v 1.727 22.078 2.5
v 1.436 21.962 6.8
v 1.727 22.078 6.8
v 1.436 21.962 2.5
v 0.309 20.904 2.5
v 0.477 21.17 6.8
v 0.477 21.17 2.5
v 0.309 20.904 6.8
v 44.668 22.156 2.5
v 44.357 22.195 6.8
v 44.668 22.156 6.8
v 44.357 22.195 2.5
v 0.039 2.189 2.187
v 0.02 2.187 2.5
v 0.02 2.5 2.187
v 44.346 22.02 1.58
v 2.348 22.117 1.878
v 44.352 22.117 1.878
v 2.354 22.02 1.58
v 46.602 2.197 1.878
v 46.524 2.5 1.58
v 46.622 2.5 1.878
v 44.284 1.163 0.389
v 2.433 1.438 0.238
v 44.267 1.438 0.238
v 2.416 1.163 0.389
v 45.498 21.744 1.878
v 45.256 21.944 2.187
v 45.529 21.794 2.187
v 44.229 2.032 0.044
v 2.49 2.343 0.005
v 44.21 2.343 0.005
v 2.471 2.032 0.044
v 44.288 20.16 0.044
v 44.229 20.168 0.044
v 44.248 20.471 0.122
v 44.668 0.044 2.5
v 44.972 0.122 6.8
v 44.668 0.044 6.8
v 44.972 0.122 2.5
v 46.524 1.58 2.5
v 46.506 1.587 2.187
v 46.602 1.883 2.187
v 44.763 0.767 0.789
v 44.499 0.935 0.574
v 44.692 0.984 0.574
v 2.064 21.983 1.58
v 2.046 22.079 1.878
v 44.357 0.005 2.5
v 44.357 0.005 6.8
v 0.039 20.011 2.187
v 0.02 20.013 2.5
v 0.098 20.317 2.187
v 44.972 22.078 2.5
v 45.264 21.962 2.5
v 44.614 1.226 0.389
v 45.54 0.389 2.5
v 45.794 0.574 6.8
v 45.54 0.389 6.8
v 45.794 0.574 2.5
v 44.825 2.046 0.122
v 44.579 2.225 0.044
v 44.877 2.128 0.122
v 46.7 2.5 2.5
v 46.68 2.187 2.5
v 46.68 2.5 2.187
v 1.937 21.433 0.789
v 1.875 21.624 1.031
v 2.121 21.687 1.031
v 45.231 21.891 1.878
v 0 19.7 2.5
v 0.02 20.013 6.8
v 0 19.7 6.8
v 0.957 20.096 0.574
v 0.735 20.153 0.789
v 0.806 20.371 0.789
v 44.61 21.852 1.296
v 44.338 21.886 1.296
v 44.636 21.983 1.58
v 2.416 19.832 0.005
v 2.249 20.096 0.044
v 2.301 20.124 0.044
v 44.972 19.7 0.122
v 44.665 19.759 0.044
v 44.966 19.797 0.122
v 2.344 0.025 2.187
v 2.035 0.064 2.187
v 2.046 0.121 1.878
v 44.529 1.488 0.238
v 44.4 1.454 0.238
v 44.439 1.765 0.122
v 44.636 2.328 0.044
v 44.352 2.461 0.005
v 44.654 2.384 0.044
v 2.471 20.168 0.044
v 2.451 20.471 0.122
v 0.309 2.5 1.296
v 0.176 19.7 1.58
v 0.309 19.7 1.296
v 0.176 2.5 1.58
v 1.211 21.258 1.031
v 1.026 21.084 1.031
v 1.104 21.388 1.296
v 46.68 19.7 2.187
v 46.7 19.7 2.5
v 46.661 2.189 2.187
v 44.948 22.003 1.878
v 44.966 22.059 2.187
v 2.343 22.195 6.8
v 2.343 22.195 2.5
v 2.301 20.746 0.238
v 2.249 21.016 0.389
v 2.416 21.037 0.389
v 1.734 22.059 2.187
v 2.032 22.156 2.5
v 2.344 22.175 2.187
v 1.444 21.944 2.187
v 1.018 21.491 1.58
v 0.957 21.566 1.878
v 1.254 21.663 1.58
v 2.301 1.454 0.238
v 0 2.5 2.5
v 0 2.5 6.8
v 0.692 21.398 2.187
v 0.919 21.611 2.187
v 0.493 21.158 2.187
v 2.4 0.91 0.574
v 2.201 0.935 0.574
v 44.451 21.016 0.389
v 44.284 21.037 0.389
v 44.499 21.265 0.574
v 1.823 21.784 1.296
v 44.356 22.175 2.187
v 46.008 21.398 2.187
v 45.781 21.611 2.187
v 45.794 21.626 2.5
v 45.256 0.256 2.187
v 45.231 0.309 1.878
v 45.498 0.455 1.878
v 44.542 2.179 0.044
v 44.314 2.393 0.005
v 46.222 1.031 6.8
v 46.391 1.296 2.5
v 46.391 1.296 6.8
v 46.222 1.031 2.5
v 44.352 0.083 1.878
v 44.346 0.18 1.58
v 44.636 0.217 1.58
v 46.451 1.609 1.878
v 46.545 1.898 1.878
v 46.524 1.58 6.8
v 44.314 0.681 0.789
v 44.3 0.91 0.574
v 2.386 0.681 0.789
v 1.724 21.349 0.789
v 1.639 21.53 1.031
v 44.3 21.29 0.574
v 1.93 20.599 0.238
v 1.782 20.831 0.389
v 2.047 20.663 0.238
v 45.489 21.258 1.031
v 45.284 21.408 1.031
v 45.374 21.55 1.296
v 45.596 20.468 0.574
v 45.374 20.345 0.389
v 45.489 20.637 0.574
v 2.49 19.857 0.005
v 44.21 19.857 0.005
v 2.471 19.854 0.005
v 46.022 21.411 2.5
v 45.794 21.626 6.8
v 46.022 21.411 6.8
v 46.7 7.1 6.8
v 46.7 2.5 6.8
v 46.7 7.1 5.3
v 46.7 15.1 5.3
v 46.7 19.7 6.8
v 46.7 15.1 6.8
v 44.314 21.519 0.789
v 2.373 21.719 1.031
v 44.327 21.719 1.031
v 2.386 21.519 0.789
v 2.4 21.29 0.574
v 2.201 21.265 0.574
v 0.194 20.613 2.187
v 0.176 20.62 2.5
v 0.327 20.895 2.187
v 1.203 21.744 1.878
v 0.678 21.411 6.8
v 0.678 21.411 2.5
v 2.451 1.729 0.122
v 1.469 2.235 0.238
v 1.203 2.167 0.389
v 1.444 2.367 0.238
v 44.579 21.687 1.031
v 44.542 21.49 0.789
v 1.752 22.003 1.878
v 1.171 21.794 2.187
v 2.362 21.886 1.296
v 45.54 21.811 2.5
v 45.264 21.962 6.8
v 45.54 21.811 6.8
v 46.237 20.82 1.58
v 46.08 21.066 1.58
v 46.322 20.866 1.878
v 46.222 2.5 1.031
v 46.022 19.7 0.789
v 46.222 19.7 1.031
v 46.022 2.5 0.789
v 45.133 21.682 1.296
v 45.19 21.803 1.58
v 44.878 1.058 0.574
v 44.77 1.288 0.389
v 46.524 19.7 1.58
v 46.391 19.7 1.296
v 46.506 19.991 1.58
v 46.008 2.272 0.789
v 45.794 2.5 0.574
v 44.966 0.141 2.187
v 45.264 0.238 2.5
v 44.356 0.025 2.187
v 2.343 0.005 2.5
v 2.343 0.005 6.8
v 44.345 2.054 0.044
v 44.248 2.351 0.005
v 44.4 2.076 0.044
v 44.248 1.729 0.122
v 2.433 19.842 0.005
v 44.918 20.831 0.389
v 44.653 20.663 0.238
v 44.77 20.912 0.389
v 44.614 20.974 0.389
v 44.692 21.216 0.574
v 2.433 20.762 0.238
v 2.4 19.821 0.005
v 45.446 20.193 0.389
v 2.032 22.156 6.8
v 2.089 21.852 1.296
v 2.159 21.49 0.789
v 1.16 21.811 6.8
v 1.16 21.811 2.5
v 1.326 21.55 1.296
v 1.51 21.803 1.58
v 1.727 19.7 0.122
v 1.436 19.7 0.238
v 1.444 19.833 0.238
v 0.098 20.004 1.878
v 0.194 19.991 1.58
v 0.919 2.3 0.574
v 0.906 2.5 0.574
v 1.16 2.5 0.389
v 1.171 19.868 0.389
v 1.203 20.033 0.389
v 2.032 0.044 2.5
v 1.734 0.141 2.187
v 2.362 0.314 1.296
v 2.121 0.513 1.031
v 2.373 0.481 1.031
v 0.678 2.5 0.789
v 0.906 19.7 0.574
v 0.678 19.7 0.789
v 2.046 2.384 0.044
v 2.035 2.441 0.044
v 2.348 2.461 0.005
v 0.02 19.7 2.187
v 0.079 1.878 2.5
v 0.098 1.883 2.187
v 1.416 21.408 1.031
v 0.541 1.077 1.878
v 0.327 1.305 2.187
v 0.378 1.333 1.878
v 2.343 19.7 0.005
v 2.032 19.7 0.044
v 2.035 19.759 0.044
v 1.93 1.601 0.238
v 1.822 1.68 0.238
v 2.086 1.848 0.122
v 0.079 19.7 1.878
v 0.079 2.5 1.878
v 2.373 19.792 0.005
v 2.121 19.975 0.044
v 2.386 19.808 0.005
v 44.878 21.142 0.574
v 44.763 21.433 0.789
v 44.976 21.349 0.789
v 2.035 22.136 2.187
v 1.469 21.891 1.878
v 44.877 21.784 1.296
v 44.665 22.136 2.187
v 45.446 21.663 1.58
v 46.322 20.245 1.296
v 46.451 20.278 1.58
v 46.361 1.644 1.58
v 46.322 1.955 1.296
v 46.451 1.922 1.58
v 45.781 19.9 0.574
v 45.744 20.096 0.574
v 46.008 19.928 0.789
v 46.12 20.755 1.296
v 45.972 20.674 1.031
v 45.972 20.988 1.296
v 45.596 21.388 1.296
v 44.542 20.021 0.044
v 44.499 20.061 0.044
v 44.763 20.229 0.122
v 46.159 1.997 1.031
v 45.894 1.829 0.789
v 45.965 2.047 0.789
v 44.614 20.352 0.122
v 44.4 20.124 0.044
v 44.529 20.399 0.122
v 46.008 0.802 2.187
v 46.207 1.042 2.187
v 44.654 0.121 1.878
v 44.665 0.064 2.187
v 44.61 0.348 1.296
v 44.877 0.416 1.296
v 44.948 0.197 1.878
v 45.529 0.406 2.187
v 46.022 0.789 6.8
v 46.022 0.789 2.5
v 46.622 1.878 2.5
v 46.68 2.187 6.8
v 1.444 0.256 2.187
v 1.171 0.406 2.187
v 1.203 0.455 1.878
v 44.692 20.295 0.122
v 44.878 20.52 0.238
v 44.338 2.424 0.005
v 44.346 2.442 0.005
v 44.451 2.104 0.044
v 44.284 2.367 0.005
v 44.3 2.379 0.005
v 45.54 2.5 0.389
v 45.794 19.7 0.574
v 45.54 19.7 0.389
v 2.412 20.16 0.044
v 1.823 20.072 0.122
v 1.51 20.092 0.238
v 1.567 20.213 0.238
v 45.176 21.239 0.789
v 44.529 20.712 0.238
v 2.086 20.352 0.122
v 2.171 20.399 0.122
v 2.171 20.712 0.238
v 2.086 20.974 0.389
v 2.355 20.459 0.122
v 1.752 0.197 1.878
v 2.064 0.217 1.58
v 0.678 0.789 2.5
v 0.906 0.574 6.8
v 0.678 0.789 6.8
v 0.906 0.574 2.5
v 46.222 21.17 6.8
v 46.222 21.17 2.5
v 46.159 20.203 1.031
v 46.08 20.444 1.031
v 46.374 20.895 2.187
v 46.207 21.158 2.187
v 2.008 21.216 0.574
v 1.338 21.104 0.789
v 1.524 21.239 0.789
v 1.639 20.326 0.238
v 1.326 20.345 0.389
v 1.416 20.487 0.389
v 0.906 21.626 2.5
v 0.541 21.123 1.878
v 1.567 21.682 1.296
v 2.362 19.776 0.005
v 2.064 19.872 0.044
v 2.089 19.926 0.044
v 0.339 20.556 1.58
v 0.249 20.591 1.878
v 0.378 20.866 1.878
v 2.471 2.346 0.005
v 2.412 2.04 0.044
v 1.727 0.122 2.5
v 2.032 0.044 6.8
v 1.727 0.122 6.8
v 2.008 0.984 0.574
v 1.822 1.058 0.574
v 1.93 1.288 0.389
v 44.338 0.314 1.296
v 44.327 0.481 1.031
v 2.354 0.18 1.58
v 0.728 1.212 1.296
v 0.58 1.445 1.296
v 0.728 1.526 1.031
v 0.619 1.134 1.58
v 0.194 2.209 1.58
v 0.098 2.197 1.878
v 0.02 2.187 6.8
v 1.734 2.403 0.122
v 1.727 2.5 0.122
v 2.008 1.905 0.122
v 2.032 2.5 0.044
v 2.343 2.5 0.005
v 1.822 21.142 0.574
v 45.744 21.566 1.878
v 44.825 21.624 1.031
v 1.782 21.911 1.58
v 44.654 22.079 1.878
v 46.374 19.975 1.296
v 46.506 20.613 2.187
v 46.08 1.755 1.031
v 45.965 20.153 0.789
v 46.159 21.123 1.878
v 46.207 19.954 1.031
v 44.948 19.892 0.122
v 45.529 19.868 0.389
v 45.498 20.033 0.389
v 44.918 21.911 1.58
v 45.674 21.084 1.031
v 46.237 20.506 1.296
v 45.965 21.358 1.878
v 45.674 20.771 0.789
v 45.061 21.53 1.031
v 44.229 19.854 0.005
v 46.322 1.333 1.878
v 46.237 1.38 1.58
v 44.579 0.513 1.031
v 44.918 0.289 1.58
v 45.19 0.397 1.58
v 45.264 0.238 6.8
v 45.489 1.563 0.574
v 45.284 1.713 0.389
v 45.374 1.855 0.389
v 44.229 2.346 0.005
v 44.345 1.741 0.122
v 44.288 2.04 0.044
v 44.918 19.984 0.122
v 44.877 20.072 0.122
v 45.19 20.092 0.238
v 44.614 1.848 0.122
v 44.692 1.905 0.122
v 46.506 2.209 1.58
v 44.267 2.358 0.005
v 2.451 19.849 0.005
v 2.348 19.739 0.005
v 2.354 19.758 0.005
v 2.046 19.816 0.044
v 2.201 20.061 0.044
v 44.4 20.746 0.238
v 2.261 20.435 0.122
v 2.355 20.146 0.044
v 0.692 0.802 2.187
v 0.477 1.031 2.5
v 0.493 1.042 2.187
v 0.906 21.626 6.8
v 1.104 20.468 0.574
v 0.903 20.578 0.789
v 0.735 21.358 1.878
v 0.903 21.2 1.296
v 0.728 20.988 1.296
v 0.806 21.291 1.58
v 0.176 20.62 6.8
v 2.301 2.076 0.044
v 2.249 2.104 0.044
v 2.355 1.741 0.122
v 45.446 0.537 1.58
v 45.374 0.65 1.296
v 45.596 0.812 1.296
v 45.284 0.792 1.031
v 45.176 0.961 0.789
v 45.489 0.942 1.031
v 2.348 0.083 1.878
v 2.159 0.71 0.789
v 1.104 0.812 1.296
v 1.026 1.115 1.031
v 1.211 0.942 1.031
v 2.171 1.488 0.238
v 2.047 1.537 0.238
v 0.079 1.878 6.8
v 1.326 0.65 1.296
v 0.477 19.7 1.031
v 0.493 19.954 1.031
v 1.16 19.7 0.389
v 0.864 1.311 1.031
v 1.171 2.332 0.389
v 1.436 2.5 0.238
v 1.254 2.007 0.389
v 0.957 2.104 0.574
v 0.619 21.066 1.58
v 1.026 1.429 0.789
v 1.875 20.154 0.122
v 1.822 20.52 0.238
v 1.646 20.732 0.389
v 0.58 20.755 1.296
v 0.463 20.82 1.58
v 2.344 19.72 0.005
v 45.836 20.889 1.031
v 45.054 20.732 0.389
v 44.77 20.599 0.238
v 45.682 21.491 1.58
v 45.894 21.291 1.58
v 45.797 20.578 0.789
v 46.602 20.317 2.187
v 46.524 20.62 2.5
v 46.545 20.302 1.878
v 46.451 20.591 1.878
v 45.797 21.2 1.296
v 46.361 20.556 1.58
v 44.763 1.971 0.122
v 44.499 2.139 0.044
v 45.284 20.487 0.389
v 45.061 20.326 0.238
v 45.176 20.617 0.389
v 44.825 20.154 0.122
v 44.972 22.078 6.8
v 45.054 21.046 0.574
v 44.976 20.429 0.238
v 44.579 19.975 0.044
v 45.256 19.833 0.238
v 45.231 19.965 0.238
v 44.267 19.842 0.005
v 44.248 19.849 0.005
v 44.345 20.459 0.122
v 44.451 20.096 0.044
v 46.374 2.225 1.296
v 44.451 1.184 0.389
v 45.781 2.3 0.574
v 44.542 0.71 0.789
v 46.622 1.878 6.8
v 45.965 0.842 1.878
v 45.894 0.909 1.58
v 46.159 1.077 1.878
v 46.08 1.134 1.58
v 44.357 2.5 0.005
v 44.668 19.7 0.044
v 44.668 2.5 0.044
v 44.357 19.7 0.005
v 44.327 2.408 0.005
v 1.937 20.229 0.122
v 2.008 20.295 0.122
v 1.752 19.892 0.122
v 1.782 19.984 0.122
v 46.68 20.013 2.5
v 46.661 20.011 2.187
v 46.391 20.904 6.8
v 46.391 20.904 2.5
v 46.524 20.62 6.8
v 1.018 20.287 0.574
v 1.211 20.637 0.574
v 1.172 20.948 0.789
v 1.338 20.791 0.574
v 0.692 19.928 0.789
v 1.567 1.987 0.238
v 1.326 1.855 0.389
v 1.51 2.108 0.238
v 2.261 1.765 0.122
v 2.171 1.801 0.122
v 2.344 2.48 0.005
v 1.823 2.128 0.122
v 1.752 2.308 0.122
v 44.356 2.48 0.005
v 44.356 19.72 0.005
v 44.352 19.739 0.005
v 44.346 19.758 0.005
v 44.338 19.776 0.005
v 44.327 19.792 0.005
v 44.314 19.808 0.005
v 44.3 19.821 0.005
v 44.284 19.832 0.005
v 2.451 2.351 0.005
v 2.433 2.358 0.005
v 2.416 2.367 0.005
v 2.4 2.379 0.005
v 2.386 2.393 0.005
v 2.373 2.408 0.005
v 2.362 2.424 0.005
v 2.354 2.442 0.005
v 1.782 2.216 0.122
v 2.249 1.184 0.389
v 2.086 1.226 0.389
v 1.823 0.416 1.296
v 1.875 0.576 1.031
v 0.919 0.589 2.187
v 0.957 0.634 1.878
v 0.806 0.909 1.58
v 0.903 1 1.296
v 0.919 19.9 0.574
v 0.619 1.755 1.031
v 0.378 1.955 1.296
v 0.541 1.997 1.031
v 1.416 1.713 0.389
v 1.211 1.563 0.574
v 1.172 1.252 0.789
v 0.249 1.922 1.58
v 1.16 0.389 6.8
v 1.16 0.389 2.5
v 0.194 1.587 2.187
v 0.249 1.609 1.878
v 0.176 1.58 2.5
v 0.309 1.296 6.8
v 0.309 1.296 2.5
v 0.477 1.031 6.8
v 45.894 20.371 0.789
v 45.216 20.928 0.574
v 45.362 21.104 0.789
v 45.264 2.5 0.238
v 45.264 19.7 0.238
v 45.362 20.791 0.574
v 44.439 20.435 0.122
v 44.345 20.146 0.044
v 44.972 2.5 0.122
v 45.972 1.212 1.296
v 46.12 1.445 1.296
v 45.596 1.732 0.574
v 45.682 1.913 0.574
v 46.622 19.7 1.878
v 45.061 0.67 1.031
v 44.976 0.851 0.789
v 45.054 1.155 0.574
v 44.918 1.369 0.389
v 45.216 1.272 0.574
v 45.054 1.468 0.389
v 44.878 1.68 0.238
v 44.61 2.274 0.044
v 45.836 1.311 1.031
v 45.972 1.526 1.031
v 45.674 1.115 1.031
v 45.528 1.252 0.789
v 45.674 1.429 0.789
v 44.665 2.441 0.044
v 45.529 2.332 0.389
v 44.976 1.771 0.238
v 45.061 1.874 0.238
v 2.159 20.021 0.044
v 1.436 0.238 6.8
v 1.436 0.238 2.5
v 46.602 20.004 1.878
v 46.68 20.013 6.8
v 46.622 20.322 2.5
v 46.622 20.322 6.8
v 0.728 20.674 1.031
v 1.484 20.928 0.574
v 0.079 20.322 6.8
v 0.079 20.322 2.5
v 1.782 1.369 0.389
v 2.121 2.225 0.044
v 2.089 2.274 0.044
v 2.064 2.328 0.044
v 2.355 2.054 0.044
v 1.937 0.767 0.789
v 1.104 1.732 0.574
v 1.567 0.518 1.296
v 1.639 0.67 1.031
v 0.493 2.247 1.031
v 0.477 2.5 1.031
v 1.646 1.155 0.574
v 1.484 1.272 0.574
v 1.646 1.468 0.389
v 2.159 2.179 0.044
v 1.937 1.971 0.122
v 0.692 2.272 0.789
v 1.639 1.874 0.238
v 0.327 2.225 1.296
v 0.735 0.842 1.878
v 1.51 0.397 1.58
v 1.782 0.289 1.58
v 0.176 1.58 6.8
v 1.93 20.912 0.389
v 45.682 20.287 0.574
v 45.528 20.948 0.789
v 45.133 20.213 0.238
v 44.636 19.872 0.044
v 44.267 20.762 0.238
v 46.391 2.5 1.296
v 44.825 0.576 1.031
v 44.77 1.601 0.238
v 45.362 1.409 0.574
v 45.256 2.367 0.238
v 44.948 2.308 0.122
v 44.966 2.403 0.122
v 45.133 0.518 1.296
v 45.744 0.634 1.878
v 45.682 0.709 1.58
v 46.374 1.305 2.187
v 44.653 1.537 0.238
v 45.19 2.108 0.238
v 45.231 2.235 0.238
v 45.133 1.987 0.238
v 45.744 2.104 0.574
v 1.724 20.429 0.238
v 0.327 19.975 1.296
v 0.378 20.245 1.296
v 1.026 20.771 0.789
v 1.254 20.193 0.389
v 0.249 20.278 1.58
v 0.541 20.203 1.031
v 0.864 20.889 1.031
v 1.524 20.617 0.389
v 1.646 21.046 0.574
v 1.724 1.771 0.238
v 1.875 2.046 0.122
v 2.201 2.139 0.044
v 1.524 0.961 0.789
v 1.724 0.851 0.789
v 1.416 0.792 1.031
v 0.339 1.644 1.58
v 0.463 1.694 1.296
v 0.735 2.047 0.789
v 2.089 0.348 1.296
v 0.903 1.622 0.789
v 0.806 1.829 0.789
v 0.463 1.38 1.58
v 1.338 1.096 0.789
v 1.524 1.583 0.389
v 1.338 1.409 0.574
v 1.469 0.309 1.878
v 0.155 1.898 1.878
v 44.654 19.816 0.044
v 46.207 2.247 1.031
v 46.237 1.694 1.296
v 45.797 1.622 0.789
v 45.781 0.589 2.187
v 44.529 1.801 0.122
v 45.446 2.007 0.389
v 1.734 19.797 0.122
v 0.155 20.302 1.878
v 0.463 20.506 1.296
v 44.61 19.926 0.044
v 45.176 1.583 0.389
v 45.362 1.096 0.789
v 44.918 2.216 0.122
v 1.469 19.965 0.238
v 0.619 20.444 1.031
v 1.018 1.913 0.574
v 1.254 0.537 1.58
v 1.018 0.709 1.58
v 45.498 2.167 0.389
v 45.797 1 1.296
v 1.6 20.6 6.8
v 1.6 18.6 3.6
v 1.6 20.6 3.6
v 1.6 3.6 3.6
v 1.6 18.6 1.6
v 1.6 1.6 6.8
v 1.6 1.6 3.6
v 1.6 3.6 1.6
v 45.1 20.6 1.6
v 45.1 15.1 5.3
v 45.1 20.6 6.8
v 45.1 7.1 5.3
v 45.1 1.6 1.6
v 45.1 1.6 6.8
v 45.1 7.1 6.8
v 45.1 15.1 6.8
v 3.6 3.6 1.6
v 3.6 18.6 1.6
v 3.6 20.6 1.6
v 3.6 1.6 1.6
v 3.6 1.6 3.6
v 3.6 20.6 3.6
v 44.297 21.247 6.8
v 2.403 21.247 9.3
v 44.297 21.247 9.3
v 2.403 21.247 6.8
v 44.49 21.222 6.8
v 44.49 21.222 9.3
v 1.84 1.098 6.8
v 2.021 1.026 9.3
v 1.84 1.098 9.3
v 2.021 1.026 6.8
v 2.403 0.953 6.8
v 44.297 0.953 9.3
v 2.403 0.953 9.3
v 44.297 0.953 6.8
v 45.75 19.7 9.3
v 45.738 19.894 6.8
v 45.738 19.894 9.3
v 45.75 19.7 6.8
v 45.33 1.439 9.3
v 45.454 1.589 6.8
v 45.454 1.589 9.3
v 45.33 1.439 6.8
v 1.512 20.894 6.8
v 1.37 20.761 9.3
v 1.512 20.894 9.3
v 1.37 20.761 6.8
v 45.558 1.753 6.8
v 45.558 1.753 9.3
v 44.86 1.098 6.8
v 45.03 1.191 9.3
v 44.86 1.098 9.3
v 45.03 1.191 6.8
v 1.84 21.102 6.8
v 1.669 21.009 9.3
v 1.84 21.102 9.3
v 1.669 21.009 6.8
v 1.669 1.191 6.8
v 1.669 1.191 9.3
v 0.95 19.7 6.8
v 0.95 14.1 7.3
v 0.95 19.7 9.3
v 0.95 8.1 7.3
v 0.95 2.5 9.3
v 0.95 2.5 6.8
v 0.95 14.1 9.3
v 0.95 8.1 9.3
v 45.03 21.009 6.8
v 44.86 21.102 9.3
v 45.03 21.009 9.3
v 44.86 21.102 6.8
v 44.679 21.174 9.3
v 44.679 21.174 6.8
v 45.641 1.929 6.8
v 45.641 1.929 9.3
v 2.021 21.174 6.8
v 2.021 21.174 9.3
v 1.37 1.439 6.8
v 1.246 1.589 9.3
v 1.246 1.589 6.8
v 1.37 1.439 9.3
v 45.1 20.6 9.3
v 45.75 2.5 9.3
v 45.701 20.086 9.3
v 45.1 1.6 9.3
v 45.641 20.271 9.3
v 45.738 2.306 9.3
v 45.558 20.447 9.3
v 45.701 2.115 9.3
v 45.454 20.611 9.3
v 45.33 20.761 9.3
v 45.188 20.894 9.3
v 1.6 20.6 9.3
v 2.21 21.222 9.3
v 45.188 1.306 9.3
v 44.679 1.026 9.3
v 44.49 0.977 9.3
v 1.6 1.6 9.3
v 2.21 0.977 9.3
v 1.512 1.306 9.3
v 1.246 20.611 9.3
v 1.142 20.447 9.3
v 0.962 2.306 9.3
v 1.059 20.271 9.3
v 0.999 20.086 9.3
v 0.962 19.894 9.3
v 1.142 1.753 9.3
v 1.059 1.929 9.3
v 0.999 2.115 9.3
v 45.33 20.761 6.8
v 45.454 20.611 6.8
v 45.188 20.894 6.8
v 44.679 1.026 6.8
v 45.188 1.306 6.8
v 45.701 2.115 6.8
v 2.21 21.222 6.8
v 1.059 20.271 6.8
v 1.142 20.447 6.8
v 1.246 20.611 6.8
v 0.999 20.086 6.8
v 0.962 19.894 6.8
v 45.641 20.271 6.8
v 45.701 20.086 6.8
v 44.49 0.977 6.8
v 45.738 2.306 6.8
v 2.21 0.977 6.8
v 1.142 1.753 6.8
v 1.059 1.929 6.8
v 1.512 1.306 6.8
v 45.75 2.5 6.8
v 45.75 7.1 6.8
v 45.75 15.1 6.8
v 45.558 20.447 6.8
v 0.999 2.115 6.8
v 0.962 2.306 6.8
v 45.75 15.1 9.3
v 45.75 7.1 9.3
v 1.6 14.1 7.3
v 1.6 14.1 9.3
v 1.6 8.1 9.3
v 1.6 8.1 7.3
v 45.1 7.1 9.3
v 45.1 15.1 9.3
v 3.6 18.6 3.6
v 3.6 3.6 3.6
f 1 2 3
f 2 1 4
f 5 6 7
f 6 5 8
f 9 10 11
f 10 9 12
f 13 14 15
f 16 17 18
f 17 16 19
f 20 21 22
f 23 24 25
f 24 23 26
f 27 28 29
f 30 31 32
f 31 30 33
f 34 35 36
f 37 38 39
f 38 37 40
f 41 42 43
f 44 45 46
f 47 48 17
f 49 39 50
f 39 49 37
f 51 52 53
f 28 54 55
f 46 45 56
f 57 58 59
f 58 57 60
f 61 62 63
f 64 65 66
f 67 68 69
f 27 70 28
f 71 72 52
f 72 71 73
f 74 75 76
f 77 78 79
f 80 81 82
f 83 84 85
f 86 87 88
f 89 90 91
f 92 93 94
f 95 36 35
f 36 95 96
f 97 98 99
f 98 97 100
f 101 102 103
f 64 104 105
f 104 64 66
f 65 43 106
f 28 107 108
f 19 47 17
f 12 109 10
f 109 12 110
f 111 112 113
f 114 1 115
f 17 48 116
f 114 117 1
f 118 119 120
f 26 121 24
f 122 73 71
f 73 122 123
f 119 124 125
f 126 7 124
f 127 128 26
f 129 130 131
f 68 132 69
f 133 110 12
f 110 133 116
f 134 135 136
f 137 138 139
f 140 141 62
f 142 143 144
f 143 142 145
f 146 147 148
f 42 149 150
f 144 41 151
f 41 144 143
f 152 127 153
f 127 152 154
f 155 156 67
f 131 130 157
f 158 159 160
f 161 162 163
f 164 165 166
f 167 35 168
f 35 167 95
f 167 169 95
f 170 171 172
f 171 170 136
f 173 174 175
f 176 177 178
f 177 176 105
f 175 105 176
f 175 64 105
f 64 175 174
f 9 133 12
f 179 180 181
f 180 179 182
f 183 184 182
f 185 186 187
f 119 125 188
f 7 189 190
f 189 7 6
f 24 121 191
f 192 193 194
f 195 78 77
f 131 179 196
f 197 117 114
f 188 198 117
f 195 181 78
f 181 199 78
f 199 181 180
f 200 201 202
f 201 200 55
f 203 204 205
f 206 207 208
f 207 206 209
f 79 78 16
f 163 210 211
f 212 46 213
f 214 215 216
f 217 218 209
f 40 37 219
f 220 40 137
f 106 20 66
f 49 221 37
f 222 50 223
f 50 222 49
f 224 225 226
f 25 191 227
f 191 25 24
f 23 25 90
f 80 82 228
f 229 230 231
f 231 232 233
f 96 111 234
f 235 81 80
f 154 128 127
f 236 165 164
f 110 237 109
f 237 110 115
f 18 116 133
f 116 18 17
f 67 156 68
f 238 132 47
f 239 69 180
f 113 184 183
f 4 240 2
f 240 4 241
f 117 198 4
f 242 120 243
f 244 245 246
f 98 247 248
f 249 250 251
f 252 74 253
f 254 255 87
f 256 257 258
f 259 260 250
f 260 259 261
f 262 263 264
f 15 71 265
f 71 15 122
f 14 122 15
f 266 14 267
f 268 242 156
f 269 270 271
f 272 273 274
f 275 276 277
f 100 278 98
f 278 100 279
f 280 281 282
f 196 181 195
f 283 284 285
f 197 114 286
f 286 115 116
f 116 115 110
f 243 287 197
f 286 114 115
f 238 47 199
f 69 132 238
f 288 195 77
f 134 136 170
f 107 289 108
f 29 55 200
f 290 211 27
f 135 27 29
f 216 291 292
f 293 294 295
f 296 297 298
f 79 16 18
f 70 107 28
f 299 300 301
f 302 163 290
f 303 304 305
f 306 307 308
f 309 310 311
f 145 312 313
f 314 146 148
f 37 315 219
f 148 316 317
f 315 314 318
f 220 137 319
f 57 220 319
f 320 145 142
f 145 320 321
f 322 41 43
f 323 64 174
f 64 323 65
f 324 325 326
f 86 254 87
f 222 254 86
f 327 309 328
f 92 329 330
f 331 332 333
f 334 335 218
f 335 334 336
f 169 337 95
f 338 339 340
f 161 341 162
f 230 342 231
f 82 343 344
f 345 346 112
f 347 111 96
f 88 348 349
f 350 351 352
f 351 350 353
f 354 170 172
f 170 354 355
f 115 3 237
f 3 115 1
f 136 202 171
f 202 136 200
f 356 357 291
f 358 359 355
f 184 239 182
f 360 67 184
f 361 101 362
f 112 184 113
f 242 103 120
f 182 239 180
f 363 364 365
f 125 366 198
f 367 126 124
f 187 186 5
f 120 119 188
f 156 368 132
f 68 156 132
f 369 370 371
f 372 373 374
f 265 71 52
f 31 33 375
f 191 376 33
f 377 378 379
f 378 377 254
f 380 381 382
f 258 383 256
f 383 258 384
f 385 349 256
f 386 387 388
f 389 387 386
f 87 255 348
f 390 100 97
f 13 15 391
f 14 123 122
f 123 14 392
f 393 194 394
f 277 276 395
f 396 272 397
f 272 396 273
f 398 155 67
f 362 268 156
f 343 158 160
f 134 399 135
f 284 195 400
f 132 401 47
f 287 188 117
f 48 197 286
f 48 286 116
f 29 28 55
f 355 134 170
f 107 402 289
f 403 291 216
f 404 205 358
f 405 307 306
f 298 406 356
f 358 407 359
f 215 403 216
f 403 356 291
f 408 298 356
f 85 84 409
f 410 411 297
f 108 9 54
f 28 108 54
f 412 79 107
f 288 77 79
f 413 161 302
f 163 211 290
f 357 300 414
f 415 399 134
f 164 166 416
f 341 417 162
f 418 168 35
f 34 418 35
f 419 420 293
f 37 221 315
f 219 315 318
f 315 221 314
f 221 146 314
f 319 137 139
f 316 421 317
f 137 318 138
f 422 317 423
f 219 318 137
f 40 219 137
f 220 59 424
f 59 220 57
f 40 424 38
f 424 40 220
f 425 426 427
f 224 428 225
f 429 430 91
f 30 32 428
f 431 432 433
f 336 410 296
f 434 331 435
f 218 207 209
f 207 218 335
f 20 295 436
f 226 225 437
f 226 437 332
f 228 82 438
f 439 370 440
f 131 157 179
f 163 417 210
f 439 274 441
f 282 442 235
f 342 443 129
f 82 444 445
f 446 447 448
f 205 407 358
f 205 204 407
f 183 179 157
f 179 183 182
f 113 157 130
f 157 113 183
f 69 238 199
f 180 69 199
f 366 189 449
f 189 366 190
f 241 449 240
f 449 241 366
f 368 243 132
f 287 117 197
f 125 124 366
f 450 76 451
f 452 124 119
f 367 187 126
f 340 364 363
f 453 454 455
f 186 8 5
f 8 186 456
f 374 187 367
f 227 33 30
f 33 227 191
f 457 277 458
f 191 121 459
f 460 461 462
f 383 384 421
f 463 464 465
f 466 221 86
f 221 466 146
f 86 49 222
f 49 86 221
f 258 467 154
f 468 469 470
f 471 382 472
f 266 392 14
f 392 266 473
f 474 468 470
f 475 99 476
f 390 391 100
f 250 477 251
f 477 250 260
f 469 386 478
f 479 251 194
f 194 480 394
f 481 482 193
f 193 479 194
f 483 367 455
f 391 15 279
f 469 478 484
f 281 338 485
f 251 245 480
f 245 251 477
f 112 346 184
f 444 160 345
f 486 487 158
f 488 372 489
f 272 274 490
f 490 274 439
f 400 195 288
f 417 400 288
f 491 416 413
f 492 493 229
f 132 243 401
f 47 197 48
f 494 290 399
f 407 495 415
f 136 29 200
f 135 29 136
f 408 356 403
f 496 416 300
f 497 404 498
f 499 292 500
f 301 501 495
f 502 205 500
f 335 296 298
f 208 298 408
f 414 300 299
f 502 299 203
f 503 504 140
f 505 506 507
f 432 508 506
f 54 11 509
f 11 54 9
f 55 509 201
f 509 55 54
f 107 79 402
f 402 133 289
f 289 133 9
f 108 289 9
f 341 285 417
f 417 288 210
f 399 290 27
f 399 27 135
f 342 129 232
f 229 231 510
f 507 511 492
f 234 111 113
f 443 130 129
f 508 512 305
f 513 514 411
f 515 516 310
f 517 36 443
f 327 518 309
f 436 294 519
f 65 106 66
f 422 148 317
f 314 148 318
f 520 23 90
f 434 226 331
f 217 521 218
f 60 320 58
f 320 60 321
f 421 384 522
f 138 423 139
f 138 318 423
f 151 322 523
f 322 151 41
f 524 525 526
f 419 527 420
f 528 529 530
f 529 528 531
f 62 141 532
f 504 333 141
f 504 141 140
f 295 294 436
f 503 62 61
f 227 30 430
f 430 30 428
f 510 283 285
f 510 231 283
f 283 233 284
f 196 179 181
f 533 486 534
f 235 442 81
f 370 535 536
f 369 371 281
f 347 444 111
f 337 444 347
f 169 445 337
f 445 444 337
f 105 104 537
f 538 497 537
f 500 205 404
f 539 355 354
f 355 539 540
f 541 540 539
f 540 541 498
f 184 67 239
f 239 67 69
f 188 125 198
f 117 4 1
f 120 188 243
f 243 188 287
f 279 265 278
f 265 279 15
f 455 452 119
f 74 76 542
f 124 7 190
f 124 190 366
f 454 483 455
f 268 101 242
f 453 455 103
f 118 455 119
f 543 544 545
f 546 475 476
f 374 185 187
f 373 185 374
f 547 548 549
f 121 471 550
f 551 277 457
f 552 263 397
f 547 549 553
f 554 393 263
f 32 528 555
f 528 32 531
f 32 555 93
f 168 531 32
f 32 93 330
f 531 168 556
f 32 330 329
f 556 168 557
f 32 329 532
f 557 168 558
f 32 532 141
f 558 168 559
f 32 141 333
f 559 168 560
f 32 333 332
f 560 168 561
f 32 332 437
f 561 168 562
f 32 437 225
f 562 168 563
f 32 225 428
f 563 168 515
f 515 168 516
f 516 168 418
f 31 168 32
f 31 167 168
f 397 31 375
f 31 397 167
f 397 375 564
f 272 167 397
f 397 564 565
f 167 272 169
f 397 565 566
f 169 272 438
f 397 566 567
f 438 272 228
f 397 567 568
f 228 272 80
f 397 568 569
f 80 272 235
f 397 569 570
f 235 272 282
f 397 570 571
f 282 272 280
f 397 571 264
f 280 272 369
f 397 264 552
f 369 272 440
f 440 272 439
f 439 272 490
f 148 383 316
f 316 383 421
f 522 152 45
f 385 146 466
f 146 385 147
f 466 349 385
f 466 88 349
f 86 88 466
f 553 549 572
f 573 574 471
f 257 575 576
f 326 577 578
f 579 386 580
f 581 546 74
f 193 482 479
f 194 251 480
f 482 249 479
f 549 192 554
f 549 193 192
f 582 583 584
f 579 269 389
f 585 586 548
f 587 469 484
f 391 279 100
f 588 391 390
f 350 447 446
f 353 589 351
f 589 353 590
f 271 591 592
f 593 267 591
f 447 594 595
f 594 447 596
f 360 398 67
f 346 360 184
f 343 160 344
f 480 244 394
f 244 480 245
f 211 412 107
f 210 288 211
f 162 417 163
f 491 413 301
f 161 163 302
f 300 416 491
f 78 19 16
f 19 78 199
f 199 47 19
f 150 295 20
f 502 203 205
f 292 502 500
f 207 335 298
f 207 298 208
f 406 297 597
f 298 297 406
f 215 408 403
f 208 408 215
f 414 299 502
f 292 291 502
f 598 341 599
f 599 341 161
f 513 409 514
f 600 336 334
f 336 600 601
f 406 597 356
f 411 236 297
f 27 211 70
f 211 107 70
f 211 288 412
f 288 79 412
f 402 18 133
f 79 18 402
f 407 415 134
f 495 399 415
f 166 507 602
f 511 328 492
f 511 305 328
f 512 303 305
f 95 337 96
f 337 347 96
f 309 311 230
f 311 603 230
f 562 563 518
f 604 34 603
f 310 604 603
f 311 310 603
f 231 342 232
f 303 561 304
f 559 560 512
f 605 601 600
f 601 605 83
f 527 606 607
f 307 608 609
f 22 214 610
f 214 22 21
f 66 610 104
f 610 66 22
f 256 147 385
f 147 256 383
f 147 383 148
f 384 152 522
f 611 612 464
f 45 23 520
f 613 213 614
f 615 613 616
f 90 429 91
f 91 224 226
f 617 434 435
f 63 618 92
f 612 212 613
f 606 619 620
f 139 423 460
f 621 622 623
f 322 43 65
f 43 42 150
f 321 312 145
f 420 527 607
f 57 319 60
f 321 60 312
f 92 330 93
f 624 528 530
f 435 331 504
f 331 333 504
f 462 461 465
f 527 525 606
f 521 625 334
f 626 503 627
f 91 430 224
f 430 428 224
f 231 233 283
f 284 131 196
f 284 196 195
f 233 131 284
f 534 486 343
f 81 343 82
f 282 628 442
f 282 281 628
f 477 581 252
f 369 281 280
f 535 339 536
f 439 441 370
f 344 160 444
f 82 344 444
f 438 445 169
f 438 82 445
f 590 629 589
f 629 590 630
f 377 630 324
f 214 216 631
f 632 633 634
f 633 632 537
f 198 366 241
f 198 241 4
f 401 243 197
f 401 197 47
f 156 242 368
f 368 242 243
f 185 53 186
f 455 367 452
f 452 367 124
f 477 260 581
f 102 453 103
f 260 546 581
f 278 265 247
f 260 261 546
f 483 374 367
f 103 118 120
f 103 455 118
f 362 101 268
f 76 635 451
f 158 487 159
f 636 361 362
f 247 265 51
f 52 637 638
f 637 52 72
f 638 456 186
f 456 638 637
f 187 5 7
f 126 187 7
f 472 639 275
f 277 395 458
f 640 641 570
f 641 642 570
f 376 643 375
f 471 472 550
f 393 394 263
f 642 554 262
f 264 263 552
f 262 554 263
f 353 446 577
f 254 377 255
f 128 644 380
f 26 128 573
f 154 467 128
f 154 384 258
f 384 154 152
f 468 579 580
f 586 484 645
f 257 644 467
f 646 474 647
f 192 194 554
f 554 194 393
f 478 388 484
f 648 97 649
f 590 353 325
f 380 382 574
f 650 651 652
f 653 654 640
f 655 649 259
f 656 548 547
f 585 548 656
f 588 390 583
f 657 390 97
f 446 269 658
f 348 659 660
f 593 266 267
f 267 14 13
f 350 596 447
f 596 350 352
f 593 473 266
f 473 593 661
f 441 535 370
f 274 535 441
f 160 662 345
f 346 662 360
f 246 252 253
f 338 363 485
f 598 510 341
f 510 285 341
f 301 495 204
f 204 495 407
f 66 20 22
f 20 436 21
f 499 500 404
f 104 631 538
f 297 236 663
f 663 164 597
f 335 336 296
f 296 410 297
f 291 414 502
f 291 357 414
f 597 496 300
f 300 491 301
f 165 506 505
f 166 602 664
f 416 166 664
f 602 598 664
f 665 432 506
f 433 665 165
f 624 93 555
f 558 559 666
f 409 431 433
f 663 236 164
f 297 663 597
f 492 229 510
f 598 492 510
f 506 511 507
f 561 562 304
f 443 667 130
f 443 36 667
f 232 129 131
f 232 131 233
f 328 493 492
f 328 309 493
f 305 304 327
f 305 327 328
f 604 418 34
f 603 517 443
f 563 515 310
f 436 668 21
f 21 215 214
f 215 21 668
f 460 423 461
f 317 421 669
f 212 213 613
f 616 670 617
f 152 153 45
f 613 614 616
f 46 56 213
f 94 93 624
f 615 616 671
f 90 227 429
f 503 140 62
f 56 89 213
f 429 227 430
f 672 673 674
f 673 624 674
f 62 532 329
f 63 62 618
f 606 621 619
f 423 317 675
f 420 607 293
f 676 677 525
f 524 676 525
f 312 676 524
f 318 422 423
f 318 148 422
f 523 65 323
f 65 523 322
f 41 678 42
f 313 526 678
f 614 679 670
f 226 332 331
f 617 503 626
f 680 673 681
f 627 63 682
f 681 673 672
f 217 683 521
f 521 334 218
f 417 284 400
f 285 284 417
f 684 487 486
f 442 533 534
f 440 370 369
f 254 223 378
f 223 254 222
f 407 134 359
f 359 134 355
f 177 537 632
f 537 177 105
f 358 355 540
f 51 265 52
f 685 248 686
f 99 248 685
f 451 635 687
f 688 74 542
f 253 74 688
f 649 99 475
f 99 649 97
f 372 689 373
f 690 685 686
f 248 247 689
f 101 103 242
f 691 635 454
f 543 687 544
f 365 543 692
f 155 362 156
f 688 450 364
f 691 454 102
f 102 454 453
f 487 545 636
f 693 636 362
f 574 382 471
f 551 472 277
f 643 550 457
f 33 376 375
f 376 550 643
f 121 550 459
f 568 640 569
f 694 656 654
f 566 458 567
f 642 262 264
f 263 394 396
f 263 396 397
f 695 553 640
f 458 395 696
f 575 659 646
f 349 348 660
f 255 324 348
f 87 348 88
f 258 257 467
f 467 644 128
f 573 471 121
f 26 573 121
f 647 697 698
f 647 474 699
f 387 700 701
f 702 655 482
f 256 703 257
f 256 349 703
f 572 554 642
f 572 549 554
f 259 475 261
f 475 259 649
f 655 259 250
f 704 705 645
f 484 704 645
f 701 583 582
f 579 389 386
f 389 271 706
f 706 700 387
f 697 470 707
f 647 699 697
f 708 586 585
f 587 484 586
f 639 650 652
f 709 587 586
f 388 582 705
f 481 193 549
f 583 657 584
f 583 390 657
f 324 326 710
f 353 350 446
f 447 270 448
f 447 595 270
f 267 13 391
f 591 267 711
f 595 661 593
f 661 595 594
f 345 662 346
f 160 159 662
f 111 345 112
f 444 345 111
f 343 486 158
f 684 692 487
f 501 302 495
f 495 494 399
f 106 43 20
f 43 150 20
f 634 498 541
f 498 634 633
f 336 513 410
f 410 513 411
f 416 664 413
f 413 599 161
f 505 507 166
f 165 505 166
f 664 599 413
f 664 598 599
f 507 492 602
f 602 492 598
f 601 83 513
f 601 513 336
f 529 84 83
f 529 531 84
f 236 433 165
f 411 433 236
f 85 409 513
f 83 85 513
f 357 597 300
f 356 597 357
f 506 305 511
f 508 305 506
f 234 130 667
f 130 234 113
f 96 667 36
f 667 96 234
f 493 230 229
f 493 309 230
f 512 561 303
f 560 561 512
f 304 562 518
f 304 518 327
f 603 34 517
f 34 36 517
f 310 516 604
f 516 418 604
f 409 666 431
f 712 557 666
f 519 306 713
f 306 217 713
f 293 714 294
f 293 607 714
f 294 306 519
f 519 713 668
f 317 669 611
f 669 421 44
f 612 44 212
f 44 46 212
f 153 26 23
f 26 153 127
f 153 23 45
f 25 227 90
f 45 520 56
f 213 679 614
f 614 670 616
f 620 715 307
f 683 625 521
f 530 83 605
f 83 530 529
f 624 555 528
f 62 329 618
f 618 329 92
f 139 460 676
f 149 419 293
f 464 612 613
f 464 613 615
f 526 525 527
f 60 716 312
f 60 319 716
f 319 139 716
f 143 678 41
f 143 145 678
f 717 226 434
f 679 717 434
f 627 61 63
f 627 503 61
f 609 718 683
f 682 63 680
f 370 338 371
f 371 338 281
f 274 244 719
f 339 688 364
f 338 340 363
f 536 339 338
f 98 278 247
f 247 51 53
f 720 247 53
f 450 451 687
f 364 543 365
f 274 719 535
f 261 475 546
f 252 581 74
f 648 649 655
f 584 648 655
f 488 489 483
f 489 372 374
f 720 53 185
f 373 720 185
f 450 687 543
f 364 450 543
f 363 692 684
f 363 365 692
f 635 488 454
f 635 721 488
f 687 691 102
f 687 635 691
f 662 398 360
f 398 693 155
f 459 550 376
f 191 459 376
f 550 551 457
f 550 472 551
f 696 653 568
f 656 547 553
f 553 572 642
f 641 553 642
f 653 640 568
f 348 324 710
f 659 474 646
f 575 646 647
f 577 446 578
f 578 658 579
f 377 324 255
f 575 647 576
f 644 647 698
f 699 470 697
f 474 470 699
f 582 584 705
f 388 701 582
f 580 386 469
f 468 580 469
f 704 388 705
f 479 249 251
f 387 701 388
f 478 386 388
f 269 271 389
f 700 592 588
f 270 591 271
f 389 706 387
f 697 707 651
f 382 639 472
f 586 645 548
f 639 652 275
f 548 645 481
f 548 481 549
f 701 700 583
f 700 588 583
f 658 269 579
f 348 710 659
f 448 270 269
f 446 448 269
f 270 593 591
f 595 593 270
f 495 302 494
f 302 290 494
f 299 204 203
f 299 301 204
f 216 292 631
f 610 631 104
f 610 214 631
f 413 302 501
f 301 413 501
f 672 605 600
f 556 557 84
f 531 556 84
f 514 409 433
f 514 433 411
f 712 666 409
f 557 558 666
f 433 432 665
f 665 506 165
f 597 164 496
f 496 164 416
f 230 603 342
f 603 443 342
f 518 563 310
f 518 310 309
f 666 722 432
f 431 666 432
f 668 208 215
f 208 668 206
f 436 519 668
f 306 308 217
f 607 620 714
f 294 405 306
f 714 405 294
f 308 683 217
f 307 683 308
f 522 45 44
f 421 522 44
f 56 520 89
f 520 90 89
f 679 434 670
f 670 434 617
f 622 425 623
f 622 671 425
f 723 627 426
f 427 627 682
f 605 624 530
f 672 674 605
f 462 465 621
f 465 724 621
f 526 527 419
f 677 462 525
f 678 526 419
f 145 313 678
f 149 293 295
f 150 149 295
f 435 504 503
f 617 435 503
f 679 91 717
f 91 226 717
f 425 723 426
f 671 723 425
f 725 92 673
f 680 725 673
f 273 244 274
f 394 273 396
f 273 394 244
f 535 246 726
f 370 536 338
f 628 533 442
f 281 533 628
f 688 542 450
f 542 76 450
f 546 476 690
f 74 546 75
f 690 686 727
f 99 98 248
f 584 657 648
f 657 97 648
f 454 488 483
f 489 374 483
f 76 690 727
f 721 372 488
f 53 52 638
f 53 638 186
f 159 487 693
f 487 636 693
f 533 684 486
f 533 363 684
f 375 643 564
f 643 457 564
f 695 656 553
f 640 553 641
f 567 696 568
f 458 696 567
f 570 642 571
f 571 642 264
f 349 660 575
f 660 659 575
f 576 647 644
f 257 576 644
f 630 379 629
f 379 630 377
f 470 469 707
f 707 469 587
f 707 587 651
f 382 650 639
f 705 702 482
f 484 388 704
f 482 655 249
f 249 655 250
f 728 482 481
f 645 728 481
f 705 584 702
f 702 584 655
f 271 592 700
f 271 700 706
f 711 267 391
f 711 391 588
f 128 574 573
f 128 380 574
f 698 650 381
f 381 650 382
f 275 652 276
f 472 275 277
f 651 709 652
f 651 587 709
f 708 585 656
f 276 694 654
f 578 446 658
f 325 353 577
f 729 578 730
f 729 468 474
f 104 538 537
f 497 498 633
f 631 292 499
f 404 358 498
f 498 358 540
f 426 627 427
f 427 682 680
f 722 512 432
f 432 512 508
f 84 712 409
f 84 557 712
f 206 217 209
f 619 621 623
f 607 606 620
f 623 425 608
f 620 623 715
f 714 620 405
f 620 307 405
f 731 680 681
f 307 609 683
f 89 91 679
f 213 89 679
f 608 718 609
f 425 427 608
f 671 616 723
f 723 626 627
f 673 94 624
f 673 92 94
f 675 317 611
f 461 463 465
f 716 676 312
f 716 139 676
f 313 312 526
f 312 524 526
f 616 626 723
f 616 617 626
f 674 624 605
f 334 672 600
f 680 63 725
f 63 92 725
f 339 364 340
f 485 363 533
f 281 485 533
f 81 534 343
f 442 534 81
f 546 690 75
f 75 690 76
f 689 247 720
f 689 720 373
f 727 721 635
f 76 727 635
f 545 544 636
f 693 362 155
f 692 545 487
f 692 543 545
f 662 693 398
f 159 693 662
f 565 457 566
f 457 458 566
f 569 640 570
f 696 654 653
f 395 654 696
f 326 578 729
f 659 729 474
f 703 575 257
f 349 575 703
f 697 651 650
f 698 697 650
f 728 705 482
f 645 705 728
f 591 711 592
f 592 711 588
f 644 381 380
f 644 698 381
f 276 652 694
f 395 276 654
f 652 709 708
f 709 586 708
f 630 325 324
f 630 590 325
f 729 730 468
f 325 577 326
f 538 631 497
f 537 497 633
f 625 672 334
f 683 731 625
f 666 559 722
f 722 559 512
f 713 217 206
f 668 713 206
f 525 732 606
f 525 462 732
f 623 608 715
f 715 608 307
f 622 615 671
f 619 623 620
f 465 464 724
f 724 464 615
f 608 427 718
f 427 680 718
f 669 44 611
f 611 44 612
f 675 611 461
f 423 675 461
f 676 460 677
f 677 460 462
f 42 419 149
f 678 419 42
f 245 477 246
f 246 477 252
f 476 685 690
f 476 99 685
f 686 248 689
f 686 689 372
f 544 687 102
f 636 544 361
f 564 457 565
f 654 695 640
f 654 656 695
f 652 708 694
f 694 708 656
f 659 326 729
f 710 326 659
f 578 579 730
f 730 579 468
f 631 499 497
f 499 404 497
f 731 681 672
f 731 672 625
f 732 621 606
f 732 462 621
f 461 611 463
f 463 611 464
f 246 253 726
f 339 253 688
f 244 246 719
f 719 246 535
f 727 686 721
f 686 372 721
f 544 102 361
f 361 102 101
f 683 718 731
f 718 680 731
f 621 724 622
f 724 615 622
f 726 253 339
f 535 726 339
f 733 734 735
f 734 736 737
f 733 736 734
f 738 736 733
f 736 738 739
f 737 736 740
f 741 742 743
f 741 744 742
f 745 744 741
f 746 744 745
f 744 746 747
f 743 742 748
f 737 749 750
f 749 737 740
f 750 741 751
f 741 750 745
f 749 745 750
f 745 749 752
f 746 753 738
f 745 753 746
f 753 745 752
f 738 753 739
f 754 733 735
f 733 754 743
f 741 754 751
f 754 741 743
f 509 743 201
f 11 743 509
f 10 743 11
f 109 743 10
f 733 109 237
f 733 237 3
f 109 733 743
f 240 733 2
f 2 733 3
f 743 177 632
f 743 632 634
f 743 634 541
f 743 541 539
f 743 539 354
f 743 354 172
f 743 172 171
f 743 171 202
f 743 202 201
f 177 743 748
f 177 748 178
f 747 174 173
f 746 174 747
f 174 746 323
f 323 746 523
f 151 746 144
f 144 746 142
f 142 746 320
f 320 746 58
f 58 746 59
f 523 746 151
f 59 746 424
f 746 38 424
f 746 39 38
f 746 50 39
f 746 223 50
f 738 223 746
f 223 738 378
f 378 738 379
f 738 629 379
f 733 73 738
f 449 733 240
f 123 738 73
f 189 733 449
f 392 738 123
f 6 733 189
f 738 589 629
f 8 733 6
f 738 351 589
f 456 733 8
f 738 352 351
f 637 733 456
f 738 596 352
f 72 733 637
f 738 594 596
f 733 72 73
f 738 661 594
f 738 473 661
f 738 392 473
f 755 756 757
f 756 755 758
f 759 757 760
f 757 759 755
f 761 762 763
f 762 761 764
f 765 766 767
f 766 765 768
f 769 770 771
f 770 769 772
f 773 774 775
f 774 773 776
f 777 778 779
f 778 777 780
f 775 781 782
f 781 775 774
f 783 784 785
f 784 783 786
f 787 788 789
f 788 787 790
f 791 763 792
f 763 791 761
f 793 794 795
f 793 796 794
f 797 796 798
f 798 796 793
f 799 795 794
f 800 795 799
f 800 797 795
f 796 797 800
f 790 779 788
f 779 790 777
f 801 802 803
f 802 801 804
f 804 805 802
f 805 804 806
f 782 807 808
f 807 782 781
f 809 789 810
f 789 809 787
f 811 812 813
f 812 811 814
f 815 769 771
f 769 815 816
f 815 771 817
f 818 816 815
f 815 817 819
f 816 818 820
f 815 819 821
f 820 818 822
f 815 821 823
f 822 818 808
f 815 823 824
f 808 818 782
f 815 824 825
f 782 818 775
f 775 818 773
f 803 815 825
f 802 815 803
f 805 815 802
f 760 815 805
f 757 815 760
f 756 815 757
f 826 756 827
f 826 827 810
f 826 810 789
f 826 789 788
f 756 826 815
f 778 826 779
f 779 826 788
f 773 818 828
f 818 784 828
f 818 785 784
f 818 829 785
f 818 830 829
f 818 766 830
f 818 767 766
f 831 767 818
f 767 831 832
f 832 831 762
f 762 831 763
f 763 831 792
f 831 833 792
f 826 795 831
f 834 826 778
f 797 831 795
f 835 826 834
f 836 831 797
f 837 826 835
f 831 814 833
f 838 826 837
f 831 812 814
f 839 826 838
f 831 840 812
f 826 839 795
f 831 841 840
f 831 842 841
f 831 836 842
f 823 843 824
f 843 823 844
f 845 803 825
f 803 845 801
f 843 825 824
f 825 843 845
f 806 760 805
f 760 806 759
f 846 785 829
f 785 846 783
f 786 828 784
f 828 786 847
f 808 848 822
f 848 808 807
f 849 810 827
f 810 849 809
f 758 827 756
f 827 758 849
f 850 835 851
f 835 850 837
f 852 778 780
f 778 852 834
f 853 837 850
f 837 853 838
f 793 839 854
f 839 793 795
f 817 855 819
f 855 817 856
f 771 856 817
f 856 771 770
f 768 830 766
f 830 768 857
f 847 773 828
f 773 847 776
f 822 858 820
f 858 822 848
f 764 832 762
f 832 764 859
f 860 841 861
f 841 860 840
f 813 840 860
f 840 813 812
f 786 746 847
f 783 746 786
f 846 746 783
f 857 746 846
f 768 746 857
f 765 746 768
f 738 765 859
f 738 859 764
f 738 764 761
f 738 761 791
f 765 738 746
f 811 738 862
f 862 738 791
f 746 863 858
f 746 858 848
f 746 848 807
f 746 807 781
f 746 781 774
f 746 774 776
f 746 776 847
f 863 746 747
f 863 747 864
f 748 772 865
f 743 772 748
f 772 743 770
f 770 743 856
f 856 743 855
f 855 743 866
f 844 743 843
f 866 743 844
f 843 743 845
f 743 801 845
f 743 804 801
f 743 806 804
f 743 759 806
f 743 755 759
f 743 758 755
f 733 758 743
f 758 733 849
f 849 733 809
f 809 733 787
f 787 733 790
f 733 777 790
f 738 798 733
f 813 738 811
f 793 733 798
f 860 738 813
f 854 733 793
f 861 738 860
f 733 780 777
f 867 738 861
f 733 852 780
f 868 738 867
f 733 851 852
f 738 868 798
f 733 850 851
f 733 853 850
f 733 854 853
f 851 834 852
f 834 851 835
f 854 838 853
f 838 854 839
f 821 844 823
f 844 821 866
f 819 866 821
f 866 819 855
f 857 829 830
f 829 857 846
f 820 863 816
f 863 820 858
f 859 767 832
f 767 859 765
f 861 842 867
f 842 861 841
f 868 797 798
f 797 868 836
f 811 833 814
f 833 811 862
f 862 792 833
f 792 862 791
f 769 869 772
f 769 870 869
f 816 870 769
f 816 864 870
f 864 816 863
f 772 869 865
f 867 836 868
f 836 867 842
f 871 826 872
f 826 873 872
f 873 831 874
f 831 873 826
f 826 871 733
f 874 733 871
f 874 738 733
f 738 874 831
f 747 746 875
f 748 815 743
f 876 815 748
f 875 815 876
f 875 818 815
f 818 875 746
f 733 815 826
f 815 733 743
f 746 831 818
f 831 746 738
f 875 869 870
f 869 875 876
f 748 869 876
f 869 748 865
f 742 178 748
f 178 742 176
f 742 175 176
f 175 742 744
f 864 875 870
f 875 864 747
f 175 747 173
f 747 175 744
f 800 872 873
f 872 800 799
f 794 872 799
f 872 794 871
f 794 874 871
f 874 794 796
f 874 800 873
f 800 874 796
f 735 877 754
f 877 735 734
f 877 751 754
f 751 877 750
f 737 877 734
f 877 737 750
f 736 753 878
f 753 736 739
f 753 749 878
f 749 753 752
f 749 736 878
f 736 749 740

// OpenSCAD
//
//  LedMatrix
//  part of Let's make series
//
//  The Cave, 2017
//  https://thecave.cz
//
//  Licensed under MIT License (see LICENSE file for details)
//

$innerX = 43.5;
$innerY = 19;
$outerZ = 9.3;
$wall = 1.6;
$outerDia = 5;
$dentZ = 2.5;

$usbWidth = 8;
$usbHeight = 4;
$usbY = $outerZ-$wall-$usbHeight;
$usbX = ($innerY-$usbWidth)/2;

$cableWidth = 6;
$cableHeight = 2;
$cableY = $outerZ-$wall-$cableHeight;
$cableX = ($innerY-$cableWidth)/2;

$spacerSize = 2;
$spacerHeight = 2;


module base() {
    difference() {
        translate([$outerDia/2,$outerDia/2,$outerDia/2]) minkowski() {
            sphere(d=$outerDia,$fn=50);
            cube([$innerX+$wall*2-$outerDia,$innerY+$wall*2-$outerDia,$outerZ+$outerDia*2]);
        }
        translate([$wall,$wall,$wall]) cube([$innerX,$innerY,$outerZ*2]);
        translate([-1,-1,$outerZ-$dentZ]) cube([$innerX*2,$innerY*2,$outerZ*2]);
    }
}

module dent() {
    translate([$outerDia/2,$outerDia/2,$outerZ-$dentZ]) difference() {
        minkowski() {
            cube([$innerX+$wall-($outerDia-$wall),$innerY+$wall-($outerDia-$wall),$dentZ/2]);
            cylinder(d=$outerDia-$wall-0.3,h=$dentZ/2,$fn=50);
        }
        translate([-$outerDia/2+$wall,-$outerDia/2+$wall,-1]) cube([$innerX,$innerY,$dentZ+2]);
    }
}


difference() {
    union() {
        base();
        dent();
    }
    translate([$innerX+$wall-1,$wall+$usbX,$wall+$usbY]) cube([$wall+2,$usbWidth, $usbHeight]);
    translate([-1,$wall+$cableX,$wall+$cableY]) cube([$wall+2,$cableWidth, $cableHeight]);
}

translate([$wall,$wall+$innerY-$spacerSize,$wall]) cube([$spacerSize, $spacerSize, $spacerHeight]);
translate([$wall,$wall,$wall]) cube([$spacerSize, $spacerSize, $spacerHeight]);
